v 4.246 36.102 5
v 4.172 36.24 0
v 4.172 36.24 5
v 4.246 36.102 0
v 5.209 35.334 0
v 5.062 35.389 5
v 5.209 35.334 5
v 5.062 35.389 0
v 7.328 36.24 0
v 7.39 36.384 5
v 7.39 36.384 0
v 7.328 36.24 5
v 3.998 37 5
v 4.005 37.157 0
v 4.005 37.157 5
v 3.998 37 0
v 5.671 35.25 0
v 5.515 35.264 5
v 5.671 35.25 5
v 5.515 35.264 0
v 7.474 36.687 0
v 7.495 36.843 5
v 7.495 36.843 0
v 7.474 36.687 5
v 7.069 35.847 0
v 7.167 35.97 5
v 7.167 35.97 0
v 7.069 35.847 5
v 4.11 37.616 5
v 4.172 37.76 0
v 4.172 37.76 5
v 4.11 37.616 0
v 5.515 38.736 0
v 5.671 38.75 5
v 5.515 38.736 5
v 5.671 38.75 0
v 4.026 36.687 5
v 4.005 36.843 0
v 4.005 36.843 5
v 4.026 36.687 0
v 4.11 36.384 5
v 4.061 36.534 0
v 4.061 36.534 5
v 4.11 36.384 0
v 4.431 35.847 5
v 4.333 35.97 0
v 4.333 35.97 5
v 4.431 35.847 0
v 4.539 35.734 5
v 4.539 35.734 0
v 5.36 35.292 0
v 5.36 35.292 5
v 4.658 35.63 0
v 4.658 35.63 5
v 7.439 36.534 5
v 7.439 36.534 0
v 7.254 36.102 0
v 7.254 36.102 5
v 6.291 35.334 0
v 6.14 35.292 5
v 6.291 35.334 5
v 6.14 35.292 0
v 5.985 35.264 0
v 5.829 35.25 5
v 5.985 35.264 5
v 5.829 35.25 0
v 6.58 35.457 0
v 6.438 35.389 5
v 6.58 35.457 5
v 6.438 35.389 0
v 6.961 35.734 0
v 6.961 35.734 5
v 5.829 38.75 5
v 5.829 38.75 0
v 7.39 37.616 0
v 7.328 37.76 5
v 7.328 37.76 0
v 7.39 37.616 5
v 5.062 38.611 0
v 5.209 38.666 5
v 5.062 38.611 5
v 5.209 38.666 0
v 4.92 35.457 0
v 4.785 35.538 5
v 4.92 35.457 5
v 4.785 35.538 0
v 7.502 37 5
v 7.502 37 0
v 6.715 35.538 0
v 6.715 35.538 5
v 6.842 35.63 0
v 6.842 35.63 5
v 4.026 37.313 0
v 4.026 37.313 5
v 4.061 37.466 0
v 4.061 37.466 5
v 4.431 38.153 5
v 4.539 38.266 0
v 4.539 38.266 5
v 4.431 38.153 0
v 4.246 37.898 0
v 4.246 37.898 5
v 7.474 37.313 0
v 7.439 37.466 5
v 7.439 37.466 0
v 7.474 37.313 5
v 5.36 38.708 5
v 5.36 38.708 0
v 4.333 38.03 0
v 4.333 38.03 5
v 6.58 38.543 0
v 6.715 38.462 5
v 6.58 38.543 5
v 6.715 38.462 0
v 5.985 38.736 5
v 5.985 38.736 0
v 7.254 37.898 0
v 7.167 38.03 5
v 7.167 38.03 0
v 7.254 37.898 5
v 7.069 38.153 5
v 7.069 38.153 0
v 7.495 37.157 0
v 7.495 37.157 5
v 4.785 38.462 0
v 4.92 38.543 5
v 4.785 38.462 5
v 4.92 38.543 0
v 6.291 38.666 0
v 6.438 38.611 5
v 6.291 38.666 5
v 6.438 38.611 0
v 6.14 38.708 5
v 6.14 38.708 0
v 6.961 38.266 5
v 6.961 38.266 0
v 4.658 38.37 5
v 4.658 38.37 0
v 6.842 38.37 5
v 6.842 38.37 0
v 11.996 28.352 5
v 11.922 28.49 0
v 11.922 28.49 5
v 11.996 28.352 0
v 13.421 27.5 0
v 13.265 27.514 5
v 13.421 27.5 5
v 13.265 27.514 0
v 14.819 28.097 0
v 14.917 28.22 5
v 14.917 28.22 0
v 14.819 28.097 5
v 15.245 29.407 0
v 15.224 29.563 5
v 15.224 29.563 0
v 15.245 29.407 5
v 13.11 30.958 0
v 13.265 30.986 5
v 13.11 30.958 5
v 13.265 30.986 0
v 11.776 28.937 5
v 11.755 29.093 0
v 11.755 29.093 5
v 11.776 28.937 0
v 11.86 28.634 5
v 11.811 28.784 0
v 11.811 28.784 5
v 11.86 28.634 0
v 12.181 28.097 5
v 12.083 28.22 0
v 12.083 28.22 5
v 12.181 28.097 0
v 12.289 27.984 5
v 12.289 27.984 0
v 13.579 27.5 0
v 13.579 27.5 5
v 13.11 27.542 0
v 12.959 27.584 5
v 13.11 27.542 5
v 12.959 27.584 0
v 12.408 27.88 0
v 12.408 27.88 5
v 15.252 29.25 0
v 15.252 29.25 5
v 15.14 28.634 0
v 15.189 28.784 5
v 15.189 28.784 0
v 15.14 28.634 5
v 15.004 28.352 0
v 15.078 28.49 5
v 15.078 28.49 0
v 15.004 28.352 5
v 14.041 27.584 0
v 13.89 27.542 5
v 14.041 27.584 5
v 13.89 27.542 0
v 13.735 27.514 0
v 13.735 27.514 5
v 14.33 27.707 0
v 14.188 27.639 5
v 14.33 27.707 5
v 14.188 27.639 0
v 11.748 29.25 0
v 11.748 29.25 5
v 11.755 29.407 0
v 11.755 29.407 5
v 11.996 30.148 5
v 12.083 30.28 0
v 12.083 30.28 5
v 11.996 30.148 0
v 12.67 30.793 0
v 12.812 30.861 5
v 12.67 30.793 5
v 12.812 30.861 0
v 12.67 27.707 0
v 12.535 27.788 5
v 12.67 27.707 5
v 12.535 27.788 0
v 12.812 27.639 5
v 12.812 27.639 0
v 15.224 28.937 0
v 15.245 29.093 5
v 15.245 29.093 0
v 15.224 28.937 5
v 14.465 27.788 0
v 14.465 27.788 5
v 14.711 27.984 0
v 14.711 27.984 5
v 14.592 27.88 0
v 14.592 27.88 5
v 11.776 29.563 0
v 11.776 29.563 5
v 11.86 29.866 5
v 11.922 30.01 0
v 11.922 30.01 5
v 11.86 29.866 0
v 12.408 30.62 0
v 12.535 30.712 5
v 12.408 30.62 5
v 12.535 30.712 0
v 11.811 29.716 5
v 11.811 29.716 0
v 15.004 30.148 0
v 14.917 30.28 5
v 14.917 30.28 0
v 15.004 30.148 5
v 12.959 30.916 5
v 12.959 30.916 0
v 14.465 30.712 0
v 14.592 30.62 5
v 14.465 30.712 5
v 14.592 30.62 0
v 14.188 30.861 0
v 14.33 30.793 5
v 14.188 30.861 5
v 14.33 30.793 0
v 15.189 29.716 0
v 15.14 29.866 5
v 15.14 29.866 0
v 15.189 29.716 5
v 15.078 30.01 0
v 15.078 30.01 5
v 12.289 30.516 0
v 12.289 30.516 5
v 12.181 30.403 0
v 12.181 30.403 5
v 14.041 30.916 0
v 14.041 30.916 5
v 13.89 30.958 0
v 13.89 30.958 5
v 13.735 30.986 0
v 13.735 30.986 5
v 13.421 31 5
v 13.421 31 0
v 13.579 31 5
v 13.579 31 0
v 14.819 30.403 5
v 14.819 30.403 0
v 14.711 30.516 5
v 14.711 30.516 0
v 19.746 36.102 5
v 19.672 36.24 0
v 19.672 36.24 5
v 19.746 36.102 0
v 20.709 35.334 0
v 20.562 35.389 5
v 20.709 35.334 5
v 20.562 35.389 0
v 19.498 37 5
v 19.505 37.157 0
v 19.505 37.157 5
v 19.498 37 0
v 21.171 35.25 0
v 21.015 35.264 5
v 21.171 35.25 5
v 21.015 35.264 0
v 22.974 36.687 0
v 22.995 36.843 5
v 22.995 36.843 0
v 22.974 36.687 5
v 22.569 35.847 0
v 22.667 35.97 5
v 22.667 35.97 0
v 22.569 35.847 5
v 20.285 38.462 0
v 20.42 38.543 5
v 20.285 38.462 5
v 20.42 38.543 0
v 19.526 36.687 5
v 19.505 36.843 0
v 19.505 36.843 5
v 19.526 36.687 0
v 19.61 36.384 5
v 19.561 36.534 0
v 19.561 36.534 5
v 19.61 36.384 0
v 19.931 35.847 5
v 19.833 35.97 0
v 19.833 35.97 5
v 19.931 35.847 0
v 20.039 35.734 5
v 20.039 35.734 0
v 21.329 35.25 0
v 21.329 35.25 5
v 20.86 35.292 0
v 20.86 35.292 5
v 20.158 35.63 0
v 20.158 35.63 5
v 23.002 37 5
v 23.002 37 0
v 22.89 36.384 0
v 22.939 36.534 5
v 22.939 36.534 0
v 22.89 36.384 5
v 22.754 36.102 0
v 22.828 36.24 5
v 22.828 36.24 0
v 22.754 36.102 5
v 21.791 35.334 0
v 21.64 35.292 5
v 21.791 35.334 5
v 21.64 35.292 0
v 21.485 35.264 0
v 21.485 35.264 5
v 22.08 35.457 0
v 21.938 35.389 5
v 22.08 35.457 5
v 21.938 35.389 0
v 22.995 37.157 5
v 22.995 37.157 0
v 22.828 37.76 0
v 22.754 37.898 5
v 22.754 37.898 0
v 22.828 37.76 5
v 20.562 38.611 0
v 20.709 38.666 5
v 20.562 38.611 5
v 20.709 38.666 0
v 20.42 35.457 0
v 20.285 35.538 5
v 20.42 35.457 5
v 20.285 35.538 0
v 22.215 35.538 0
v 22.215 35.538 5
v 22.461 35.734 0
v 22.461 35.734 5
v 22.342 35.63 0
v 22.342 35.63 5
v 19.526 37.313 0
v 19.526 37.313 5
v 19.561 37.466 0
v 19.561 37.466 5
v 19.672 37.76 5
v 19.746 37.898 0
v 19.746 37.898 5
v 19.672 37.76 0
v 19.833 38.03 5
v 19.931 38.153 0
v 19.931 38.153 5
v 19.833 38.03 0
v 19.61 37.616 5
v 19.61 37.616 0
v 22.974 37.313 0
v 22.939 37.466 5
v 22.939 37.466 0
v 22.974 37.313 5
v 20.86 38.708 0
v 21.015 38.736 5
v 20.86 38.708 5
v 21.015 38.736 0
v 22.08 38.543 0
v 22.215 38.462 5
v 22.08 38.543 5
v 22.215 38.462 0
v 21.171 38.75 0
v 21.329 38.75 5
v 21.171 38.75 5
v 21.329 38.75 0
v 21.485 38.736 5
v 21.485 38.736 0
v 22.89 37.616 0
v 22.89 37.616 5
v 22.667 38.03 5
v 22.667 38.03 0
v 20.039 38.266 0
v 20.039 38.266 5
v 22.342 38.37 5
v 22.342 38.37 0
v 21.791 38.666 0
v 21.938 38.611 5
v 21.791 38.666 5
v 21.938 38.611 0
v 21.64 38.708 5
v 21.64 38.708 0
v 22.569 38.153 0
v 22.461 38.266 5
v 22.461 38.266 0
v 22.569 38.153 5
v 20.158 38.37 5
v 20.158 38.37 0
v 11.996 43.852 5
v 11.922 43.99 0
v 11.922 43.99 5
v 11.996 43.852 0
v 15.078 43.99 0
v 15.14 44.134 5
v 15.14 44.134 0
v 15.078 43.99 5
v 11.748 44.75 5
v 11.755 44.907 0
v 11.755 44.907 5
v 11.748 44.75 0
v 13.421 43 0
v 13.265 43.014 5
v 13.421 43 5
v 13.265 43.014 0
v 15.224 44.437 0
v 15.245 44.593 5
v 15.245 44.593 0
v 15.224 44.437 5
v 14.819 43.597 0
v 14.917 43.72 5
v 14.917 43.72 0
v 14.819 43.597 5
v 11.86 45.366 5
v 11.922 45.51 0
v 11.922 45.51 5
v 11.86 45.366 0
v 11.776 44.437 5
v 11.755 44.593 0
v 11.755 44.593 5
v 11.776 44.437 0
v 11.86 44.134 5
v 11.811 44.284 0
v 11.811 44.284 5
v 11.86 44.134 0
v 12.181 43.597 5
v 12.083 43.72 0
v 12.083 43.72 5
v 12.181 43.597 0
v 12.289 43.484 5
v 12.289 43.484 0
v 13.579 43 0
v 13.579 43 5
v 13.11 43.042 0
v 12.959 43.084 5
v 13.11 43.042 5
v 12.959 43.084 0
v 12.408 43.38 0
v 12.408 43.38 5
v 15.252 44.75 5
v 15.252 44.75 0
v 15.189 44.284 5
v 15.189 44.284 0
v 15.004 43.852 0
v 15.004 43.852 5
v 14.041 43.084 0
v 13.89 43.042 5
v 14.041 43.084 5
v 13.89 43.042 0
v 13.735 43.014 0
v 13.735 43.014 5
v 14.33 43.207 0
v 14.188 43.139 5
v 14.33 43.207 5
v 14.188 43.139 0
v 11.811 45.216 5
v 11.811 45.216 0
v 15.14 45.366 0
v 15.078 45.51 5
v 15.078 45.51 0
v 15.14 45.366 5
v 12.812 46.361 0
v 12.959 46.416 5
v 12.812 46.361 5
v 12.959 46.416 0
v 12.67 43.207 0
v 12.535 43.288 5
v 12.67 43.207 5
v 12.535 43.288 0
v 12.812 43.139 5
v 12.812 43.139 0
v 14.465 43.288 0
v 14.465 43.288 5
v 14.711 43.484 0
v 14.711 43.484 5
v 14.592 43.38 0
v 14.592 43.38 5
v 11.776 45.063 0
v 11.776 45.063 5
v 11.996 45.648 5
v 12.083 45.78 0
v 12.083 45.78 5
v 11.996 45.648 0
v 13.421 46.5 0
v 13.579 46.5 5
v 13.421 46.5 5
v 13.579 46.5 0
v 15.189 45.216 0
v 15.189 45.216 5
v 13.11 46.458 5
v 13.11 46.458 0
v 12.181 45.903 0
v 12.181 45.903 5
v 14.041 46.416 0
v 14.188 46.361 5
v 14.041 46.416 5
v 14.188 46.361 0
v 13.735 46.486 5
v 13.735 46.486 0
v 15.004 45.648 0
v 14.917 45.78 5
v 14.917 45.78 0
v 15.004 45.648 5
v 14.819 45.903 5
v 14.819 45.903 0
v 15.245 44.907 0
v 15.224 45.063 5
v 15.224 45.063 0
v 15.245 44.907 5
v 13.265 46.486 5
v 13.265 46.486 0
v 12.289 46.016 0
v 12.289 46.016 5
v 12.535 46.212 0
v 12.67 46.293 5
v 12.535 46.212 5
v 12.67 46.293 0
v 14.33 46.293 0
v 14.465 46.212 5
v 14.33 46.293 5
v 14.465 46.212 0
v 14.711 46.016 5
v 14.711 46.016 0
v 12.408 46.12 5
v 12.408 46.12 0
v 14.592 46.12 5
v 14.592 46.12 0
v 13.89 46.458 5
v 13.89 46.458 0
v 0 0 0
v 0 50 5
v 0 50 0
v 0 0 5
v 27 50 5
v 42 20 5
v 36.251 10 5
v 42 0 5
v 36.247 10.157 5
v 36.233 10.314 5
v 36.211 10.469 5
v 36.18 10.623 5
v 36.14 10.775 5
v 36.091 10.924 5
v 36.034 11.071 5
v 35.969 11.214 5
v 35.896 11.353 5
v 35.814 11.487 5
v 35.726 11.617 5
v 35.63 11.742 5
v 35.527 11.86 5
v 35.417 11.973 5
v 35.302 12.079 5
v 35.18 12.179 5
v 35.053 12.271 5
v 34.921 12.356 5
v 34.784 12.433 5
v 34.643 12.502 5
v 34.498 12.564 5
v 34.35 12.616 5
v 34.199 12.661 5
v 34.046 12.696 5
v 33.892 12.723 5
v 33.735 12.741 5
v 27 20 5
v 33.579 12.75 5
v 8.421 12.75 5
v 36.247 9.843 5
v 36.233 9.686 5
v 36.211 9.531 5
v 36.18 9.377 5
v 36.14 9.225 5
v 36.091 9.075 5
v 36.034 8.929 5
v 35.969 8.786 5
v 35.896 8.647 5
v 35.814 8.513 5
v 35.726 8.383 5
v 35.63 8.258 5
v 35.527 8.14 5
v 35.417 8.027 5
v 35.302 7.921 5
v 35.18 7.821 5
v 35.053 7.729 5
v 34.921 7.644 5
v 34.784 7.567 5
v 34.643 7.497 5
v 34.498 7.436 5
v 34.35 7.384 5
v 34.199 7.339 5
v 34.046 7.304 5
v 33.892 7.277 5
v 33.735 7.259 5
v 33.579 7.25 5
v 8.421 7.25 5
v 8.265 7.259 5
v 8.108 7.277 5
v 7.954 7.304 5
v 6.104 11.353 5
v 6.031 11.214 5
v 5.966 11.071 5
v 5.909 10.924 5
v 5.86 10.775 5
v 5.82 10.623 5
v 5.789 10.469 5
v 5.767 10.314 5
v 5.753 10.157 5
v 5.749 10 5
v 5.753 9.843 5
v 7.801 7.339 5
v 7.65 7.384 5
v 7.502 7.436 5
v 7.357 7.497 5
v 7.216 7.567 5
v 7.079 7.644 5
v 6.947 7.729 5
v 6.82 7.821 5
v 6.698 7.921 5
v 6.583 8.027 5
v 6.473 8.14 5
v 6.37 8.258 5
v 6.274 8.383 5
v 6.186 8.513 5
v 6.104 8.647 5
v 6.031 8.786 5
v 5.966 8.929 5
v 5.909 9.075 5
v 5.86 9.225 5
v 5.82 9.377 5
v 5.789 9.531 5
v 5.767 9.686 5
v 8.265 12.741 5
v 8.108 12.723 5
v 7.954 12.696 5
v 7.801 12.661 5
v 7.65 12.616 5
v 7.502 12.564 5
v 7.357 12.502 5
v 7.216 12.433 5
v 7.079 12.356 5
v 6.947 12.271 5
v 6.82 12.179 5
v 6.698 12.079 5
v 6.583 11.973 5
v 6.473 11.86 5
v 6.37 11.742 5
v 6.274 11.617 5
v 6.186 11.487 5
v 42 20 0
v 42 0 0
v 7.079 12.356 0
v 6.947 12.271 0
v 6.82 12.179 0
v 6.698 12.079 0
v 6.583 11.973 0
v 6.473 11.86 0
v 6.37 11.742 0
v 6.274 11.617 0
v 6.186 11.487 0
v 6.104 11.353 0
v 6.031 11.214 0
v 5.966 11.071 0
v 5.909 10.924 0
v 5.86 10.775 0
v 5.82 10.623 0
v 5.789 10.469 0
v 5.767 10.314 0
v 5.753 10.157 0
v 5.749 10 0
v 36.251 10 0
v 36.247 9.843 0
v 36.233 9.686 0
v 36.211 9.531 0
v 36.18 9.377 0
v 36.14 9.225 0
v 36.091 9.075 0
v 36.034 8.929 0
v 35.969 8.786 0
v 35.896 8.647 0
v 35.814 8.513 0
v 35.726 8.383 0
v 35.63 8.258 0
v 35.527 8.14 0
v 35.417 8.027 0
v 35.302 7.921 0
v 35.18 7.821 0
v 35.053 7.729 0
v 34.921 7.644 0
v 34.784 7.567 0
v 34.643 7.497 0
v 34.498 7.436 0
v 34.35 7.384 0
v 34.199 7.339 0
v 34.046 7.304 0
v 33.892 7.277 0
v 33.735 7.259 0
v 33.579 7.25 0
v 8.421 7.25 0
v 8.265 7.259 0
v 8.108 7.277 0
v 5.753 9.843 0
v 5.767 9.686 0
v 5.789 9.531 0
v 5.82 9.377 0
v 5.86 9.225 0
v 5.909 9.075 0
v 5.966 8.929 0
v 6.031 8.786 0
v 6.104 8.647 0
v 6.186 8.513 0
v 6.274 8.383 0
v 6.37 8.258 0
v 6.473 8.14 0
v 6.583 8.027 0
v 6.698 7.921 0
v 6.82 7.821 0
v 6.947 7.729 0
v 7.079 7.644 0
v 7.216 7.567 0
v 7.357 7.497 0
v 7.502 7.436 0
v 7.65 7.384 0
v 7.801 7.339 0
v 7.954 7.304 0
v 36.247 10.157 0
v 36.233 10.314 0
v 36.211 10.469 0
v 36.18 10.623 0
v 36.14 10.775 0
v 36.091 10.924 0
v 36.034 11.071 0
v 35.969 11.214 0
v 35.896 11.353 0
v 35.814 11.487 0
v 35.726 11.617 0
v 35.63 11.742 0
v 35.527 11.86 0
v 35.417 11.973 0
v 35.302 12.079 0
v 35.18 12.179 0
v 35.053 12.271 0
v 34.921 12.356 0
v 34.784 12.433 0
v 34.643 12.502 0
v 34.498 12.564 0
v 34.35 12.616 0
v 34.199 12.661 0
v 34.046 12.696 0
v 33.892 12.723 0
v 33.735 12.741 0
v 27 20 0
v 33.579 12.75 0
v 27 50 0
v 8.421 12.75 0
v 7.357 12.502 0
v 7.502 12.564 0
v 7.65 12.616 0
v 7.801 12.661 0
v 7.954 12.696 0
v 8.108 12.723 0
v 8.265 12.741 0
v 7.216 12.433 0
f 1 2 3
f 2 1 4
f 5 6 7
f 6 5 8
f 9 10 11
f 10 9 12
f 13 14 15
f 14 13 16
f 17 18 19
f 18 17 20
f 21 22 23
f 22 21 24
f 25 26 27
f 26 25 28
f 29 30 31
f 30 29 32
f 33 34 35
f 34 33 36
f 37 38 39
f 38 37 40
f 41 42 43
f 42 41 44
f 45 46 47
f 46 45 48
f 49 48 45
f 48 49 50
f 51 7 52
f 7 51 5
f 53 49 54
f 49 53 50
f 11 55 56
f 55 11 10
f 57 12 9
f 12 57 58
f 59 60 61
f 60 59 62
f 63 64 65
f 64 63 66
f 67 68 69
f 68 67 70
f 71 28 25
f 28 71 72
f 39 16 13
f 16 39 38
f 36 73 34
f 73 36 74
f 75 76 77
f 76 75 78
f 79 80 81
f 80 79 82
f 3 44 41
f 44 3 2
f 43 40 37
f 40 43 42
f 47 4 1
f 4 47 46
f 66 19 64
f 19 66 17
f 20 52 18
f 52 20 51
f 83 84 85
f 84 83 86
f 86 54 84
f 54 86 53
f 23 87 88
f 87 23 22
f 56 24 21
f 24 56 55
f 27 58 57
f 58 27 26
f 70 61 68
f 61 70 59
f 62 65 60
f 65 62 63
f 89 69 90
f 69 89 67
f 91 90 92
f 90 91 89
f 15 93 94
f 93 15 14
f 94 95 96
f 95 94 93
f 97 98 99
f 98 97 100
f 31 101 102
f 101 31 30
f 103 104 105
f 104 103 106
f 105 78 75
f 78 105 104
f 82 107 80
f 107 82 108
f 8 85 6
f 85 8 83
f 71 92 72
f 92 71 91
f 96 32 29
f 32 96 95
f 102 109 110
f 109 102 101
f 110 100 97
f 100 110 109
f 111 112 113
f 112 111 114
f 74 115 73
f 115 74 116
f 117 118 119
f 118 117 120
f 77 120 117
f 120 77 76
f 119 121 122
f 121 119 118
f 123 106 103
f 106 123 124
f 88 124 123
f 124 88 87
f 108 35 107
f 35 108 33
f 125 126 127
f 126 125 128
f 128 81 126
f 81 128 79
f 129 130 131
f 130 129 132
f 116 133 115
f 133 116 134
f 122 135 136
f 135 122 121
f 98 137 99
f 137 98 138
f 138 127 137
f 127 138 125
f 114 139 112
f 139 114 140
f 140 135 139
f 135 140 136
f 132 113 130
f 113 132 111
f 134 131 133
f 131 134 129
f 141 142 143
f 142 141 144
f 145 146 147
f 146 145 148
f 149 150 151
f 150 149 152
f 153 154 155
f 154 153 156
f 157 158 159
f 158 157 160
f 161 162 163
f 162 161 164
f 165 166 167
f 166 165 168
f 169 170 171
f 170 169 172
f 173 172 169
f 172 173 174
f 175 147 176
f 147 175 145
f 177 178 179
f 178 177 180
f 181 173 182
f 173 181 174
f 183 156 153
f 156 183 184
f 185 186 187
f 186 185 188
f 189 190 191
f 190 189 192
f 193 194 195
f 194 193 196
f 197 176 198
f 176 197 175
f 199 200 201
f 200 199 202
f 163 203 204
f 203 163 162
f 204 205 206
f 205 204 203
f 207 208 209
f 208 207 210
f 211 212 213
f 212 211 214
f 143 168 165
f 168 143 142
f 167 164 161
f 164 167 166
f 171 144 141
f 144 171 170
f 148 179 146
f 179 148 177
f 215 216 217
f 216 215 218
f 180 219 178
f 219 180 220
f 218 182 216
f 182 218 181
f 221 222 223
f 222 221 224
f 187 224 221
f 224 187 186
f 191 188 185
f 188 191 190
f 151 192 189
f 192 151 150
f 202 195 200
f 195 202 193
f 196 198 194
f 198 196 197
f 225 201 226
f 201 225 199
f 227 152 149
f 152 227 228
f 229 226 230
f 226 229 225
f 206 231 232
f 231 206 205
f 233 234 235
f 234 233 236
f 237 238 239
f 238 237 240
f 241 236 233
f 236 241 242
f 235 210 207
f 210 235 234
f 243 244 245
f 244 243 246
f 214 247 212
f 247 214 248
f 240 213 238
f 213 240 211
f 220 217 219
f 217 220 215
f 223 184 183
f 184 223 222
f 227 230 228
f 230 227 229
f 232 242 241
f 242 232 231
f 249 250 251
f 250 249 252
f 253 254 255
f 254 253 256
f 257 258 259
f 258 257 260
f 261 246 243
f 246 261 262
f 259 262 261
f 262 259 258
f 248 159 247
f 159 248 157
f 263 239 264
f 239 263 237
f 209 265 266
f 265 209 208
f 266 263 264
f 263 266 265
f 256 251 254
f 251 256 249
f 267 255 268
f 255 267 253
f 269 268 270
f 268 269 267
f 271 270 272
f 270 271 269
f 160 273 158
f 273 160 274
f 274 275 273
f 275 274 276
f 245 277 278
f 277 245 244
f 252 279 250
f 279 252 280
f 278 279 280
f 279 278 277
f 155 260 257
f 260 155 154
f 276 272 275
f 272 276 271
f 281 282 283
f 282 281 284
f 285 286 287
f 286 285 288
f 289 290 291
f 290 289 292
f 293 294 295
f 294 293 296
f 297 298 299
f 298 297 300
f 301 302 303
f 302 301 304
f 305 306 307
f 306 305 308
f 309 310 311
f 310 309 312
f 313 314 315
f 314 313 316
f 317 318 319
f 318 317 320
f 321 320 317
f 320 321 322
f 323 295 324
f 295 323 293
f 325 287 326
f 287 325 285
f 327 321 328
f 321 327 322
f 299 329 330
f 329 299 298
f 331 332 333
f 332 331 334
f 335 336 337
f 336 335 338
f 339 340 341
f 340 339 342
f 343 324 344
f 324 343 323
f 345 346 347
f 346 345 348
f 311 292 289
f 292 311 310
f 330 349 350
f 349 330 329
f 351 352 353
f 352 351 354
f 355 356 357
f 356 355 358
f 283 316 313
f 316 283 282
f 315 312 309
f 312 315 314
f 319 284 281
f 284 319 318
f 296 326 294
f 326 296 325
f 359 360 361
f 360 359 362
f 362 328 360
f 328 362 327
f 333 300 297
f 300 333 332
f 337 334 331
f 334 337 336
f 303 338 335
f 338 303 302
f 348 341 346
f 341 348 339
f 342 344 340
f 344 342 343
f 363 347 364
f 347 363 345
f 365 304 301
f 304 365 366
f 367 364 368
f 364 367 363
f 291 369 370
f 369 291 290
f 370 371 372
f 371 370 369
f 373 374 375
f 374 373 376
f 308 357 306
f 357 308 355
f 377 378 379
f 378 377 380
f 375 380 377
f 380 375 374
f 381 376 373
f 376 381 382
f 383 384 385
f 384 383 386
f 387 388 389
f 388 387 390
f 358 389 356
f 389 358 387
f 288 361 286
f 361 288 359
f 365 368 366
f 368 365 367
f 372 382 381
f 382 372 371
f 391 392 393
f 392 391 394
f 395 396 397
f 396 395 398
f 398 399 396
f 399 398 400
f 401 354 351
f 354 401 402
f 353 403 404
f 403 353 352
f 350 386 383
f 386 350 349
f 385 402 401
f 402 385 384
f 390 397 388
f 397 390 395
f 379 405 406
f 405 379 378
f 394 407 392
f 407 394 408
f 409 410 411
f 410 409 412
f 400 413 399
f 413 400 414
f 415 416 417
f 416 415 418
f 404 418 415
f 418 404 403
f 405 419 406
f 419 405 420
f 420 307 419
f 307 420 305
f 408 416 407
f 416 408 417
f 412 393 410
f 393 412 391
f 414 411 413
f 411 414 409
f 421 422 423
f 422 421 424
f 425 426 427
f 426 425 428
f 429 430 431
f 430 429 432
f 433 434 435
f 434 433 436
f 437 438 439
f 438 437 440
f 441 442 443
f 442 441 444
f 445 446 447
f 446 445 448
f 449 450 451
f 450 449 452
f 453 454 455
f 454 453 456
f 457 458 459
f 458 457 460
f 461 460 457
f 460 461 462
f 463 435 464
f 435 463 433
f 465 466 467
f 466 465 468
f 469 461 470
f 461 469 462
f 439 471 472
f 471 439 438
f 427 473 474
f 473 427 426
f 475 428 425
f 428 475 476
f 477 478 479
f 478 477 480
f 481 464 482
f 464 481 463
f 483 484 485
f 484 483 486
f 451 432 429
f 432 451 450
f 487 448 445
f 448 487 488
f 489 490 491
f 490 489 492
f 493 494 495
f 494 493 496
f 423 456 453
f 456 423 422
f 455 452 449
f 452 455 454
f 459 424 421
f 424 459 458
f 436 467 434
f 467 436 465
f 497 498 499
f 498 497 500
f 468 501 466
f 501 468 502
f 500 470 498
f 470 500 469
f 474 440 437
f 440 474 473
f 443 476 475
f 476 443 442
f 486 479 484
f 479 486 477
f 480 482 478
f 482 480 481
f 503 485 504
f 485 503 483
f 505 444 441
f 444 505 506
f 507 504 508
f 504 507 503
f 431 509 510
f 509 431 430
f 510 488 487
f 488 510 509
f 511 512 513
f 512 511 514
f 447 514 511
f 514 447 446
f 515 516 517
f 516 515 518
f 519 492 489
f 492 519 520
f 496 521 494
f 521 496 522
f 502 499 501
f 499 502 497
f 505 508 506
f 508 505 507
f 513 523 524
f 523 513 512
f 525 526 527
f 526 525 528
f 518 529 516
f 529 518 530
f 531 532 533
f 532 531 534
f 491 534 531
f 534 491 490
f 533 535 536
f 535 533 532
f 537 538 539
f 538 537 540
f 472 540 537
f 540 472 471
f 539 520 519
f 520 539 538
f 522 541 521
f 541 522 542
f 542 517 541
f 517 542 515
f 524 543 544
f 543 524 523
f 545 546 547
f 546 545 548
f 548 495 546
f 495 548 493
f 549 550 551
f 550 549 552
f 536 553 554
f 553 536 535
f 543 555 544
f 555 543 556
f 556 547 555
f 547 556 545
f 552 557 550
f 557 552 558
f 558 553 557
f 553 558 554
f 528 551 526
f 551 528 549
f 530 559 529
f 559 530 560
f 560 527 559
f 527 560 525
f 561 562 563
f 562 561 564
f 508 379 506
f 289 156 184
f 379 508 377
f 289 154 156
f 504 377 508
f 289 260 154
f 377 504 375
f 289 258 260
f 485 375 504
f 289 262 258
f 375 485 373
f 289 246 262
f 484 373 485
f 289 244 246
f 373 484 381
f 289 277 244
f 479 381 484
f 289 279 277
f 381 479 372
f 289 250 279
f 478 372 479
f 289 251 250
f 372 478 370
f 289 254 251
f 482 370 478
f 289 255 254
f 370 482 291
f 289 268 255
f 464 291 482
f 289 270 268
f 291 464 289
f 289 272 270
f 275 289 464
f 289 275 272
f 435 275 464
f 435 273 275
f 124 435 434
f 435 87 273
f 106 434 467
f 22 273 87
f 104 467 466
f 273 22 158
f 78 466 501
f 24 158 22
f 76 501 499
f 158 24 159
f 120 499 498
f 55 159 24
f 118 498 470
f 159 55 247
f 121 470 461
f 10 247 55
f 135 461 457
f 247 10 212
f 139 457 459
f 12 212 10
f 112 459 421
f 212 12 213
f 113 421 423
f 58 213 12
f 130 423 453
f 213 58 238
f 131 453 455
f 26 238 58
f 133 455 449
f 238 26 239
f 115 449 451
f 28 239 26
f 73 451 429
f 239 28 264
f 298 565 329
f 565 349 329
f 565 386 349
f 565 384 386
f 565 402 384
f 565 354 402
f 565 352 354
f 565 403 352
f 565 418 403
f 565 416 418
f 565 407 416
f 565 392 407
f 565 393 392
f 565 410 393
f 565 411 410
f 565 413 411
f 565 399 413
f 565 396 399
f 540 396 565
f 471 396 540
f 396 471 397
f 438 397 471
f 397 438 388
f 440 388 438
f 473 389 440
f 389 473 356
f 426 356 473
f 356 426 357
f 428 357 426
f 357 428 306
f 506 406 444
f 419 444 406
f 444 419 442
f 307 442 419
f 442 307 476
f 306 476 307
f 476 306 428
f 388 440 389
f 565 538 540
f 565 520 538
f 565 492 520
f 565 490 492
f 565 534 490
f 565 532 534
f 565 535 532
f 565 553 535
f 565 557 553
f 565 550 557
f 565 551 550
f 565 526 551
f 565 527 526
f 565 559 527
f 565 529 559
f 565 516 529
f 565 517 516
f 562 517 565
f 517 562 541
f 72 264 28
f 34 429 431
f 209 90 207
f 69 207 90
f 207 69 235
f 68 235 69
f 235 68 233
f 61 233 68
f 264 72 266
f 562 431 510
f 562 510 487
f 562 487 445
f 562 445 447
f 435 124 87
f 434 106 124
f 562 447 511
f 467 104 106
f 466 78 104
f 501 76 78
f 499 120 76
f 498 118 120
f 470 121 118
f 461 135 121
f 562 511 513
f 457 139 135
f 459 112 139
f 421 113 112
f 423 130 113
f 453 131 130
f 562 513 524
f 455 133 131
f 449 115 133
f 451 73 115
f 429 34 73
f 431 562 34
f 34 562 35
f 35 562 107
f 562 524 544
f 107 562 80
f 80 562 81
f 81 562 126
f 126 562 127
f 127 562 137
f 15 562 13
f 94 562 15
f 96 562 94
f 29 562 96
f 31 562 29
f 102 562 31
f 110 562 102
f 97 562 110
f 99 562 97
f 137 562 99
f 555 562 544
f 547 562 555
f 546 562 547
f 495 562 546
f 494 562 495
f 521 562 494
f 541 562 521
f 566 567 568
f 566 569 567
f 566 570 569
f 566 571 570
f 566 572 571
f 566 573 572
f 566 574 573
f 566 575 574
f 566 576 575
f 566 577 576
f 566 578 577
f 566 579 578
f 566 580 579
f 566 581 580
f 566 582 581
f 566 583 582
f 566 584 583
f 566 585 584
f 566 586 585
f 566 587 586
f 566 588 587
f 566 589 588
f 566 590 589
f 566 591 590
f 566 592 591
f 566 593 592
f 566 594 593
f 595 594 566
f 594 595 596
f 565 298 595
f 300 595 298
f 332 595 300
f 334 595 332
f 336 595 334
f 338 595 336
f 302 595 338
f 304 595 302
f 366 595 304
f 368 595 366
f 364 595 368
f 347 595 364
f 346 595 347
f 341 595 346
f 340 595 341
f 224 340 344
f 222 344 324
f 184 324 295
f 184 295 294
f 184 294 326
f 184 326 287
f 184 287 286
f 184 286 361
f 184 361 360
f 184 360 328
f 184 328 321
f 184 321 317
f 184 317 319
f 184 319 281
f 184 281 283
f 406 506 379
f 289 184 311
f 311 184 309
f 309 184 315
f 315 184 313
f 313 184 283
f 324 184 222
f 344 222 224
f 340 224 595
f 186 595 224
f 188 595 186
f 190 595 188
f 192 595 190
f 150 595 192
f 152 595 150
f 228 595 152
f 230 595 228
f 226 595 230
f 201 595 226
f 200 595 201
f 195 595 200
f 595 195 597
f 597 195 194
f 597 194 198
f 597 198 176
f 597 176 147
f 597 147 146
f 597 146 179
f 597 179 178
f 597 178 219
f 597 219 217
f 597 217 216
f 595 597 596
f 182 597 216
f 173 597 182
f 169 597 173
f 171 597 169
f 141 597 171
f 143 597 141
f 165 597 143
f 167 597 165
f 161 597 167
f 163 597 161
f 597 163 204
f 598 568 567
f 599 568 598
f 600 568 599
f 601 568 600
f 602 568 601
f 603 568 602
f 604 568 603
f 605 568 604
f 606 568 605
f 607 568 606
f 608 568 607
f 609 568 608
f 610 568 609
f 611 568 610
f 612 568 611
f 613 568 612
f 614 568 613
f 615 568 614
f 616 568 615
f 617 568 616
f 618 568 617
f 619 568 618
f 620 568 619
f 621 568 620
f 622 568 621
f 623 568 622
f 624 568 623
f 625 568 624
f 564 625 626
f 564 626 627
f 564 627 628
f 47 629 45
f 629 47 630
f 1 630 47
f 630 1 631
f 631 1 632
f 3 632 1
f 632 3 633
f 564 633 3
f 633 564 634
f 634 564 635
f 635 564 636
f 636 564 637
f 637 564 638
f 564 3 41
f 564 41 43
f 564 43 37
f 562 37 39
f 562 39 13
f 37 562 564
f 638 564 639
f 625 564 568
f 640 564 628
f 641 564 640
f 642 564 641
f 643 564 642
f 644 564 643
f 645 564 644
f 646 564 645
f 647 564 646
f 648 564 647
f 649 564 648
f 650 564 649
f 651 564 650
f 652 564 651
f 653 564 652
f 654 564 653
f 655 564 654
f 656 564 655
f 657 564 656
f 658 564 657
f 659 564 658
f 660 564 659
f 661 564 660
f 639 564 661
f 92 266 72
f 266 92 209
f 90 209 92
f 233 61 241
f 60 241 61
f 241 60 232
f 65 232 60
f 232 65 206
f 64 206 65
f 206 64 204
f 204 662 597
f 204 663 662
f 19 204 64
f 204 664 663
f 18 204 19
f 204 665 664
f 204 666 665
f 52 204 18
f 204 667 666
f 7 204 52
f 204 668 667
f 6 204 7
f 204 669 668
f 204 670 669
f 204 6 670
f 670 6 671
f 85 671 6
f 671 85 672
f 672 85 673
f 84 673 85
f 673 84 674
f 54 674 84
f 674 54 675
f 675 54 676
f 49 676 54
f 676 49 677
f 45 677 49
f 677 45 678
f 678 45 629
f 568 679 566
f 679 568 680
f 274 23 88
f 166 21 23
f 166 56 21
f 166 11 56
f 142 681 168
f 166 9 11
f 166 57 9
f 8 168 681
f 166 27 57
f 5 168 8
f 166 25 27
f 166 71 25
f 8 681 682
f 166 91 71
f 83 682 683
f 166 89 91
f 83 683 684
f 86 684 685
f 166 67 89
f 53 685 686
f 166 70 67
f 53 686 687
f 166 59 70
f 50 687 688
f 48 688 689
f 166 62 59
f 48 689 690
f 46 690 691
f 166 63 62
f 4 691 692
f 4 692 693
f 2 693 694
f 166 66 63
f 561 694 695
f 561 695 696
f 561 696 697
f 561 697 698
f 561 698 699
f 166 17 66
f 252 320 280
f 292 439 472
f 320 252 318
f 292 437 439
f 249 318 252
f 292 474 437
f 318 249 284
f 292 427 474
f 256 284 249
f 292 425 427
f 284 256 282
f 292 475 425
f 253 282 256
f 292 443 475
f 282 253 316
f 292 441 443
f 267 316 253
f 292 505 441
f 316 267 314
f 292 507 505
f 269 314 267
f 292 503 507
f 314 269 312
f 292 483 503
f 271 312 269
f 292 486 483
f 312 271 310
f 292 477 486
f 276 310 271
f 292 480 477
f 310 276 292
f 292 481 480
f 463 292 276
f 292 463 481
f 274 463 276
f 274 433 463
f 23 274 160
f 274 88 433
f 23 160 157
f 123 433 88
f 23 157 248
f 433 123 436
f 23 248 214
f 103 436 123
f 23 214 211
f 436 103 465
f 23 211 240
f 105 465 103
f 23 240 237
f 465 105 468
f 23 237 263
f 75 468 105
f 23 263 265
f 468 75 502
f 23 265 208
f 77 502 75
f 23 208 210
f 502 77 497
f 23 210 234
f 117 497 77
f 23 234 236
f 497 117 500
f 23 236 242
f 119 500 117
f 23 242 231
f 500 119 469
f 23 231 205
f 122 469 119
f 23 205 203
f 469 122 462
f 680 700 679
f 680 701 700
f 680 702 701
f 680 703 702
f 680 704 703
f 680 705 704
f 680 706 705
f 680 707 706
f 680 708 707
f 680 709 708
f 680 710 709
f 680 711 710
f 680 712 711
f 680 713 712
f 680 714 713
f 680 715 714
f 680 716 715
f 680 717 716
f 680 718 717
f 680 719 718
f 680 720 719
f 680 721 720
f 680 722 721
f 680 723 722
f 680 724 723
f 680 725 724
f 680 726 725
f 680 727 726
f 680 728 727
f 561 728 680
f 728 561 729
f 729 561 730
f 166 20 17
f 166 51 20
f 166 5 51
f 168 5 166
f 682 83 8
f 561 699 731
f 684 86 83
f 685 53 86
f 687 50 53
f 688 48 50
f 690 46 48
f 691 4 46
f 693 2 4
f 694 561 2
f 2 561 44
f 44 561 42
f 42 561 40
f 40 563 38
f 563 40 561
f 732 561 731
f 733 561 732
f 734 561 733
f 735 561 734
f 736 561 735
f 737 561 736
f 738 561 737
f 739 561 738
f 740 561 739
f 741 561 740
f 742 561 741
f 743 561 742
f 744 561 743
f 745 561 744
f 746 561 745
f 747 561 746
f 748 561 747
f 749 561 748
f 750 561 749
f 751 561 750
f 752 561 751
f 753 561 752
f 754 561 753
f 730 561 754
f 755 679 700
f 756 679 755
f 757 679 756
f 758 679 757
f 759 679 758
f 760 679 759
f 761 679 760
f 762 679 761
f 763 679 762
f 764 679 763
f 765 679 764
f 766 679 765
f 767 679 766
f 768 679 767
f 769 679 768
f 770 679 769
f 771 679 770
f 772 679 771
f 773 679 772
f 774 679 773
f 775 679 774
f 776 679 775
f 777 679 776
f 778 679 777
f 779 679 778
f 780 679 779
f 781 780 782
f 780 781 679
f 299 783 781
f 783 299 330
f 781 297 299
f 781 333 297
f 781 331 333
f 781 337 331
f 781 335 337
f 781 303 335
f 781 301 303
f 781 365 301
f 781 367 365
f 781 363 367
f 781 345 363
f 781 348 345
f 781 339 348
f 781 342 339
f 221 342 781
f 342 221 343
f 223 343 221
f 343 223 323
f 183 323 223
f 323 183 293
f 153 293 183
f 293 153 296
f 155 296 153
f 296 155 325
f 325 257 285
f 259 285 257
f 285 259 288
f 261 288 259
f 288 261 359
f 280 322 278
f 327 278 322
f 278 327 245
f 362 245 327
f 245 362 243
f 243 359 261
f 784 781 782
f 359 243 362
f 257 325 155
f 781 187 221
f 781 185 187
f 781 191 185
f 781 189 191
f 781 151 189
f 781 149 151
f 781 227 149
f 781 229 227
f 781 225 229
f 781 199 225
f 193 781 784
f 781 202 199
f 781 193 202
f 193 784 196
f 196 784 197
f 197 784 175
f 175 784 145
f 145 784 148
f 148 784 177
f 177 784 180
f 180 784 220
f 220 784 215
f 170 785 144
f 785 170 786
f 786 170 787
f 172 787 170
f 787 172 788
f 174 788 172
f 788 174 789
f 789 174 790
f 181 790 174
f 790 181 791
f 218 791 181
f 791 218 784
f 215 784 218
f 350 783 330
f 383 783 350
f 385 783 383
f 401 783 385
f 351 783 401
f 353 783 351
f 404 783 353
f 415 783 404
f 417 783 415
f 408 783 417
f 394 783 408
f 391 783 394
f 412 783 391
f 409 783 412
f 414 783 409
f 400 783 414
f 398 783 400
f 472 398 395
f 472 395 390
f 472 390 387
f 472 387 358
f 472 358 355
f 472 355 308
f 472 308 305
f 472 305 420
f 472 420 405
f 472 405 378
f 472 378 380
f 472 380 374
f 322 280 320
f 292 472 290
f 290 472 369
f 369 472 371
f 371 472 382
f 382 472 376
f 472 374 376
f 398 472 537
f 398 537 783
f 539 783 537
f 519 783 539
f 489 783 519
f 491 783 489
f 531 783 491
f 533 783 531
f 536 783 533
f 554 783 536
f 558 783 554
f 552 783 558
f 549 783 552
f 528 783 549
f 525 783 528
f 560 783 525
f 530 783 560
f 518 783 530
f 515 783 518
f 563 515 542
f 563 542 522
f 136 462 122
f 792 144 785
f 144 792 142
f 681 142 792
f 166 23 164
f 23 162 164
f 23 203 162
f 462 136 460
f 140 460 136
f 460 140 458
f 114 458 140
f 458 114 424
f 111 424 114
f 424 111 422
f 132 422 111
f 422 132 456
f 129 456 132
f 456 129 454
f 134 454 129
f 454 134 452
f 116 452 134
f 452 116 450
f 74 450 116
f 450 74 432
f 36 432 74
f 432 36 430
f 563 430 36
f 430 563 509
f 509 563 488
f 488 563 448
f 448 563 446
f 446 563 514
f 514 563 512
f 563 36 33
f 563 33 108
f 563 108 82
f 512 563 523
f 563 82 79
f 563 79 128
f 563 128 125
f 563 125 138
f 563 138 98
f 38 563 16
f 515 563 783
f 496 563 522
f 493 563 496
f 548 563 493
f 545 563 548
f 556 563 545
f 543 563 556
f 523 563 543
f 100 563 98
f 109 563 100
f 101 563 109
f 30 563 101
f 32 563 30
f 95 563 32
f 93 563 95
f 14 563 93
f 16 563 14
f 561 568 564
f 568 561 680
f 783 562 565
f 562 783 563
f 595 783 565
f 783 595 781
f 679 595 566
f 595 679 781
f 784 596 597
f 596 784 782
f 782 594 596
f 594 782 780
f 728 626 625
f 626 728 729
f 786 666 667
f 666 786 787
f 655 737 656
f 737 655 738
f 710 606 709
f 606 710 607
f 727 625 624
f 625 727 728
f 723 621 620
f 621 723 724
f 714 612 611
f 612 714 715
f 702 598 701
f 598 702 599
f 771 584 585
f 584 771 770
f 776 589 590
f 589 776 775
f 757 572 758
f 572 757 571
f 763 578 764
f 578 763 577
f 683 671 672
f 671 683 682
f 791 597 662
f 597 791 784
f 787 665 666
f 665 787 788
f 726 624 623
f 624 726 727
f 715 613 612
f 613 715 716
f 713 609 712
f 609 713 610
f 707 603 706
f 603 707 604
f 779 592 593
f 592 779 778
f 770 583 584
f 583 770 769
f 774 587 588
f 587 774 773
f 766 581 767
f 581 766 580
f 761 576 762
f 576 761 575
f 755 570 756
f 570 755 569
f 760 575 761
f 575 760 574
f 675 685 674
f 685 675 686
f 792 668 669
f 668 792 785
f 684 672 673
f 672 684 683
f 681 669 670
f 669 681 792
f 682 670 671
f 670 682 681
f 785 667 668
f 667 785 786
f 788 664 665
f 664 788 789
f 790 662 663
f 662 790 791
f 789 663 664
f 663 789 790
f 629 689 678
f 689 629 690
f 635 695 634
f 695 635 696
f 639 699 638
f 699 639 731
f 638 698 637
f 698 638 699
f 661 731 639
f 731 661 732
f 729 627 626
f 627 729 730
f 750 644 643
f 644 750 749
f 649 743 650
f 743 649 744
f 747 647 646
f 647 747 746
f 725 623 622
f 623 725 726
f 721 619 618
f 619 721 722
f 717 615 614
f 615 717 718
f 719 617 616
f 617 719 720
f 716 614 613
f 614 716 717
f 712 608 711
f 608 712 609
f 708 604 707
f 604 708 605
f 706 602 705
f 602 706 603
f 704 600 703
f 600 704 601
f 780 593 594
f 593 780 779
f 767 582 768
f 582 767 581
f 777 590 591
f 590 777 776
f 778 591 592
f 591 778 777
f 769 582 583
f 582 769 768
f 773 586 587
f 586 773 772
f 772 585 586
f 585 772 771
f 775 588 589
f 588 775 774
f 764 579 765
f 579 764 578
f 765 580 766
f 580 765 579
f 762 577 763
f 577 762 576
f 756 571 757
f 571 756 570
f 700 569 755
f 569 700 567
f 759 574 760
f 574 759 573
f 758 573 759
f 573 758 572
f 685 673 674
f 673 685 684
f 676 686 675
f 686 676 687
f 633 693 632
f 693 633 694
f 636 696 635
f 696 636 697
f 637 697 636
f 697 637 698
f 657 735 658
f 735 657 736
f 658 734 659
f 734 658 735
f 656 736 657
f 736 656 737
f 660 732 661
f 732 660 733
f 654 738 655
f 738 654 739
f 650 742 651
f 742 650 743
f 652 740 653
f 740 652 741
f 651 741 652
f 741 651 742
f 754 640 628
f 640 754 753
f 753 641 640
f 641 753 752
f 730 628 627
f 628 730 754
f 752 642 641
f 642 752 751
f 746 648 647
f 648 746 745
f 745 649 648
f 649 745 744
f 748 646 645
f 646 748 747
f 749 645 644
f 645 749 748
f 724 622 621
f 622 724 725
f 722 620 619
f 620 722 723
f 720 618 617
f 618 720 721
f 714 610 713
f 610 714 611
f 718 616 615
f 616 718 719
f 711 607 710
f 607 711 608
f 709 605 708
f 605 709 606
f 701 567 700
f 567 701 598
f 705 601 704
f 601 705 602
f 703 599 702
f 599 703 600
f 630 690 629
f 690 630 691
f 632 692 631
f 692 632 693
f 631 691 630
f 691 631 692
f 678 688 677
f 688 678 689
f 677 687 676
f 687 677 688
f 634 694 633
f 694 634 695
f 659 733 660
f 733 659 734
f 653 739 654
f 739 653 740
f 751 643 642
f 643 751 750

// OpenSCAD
// file: ../parts/lmu10.scad
module lmu10(hollow = false)
{
    difference()
    {
        cylinder(d = 19, h = 29, $fn = 100);
        if (hollow == true)
        {
            cylinder(d = 10, h = 29, $fn = 100);
        }
    }
}
// file: ../parts/nema17MotorPlate.scad
nema17PlateWidth = 42.3;

module nema17MotorPlate(h = 2)
{
    difference()
    {
        cube([42.3, 42.3, h]);

        translate([42.3 / 2, 42.3 / 2, -.1])
            polyhole(d = 22.5, h = h + .2);
        
        o = (42.3 - 31) / 2;

        translate([o, o, -.1])
            hole3mm(h = h + .2);
        translate([o, 42.3 - o, -.1])
            hole3mm(h = h + .2);
        translate([42.3 - o, o, -.1])
            hole3mm(h = h + .2);            
        translate([42.3 - o, 42.3 - o, -.1])
            hole3mm(h = h + .2);
    }
}
// file: ../materials.scad
module extrusionVertical(x = 20, y = 20, l)
{
    difference()
    {
        cube([x, y, l]);

        translate([x-10 - 5/2, -.1, -.1])
            cube([5, 2, l+.2]);

        translate([x-10 - 5/2, y - 2, -.1])
            cube([5, 2.1, l+.2]);

        translate([x - 3, 10 - 5/2, -.1])
            cube([3.1, 5, l+.2]);

        translate([-0.1, 10-5/2, -.1])
            cube([3.1, 5, l+.2]);
    }
}

module extrusionHorizontalY(x = 20, y = 20, l)
{
    difference()
    {
        cube([x, l, y]);

        translate([x-10 - 5/2, .1, -.1])
            cube([5, l + .2, 2]);

        translate([x-10 - 5/2, -.1, y-2])
            cube([5, l + .2, 2.1]);

        translate([-.1, -.1, 10 - 5/2])
            cube([2.1, l + .2, 5]);
        translate([-.1, -.1, y - 10 - 5/2])
            cube([2.1, l + .2, 5]);

        translate([x - 3, -1, 10 - 5/2])
            cube([3.1, l + .2, 5]);
        translate([x - 3, -1, y - 10 - 5/2])
            cube([3.1, l + .2, 5]);
    }
}

module extrusionHorizontalX(x = 20, y = 20, l)
{
    difference()
    {
        cube([l, x, y]);

        translate([-.1,x-10 - 5/2, -.1])
            cube([l + .2, 5, 2]);

        translate([-.1, x-10 - 5/2, y-2])
            cube([l + .2, 5, 2.1]);

        translate([-.1, -.1, 10 - 5/2])
            cube([l + .2, 2.1, 5]);
        translate([-.1, -.1, y - 10 - 5/2])
            cube([l + .2, 2.1, 5]);

        translate([-.1, x - 3, 10 - 5/2])
             cube([l + .2, 3.1, 5]);
        translate([-.1, x - 3, y - 10 - 5/2])
             cube([l + .2, 3.1, 5]);
    }
}

module tenMMBar(l)
{
    cylinder(d = 10.5, h = l, $fn = 100);
}

module pomNutMount(h = 3.5)
{
    polyhole(d = 10.5, h = h);
    pomNutHoles(h = h);
}

module pomNutHoles(h) {
    translate([-7.75, 0, 0])
        hole3mm(h = h);
    translate([0, -7.75, 0])
        hole3mm(h = h);
    translate([7.75, 0, 0])
        hole3mm(h = h);
    translate([0, 7.75, 0])
        hole3mm(h = h);
}

module pomNut() {
    difference() {
        union() {
            polyhole(d = 10.5, h = 10.5);
            translate([0, 0, 1.5])
                polyhole(d = 22, h = 3.5);
        }

        translate([0, 0, -.1])
            polyhole(d = (10.5 - (1.8*2)), h = 10.7);

        translate([0, 0, 1.4]) {
            pomNutHoles(h = 3.7);
        }
    }
}

module bearings12mm()
{
    difference() {
        union() {
            polyhole(d = 15, h = 1.5);
            polyhole(d = 12, h = 10);
            translate([0,0,8.5])
                polyhole(d = 15, h = 1.5);
        }
        translate([0, 0, -.1])
            polyhole(d = 4, h = 10.2);
    }
}
// file: ../parts/bedBracket.scad
bedBracketWidth = 42;
bedBracketThickness = 5;
bedBracketDepth = 50;

module bedBracket()
{
    difference() {
        cube([bedBracketWidth, bedBracketDepth, bedBracketThickness]);

        translate([bedBracketWidth - 15, 20, -.1])
            cube([bedBracketWidth / 2 + .1, 30.1, bedBracketThickness + .2]);

        translate([bedBracketWidth / 2 - 12.5, 10, -.1])
            hull() {
                hole5mm(h = bedBracketThickness + .2);
                translate([25, 0, 0])
                    hole5mm(h = bedBracketThickness + .2);
            }

        translate([(bedBracketWidth - 15) / 2, 37, -.1])
            pomNutHoles(h = bedBracketThickness + .2);
    }
}
// file: ../functions.scad
module polyhole(h, d)
{
    n = max(round(20 * d), 3);

    rotate([0,0,180])
    {
        cylinder(h = h, r = (d / 2) / cos (180 / n), $fn = n);
    }
}

module triangle(out, up, thick, center=false)
{
    centroid = center ? [-a_len/3, -o_len/3, -depth/2] : [0, 0, 0];
    rotate([0, -90, 0])
    translate(centroid) linear_extrude(height=thick)
    {
        polygon(points=[[0,0],[0,out],[up,0]], paths=[[0,1,2]]);
    }
}
// file: ../common.scad
include <materials.scad>
include <functions.scad>
include <parts/nema17MotorPlate.scad>
include <parts/lmu10.scad>

zGantryBracketX = 20;
lmu10Diameter = 20;
lmu10Length = 29;

module hole5mm(h = 2.2) {
    polyhole(d = 5.5, h = h);
}

module hole3mm(h = 2.2) {
    polyhole(d = 3.5, h = h);
}
// main file
include <../common.scad>
include <../functions.scad>
include <../parts/bedBracket.scad>

echo("With Supports: no");

bedBracket();
